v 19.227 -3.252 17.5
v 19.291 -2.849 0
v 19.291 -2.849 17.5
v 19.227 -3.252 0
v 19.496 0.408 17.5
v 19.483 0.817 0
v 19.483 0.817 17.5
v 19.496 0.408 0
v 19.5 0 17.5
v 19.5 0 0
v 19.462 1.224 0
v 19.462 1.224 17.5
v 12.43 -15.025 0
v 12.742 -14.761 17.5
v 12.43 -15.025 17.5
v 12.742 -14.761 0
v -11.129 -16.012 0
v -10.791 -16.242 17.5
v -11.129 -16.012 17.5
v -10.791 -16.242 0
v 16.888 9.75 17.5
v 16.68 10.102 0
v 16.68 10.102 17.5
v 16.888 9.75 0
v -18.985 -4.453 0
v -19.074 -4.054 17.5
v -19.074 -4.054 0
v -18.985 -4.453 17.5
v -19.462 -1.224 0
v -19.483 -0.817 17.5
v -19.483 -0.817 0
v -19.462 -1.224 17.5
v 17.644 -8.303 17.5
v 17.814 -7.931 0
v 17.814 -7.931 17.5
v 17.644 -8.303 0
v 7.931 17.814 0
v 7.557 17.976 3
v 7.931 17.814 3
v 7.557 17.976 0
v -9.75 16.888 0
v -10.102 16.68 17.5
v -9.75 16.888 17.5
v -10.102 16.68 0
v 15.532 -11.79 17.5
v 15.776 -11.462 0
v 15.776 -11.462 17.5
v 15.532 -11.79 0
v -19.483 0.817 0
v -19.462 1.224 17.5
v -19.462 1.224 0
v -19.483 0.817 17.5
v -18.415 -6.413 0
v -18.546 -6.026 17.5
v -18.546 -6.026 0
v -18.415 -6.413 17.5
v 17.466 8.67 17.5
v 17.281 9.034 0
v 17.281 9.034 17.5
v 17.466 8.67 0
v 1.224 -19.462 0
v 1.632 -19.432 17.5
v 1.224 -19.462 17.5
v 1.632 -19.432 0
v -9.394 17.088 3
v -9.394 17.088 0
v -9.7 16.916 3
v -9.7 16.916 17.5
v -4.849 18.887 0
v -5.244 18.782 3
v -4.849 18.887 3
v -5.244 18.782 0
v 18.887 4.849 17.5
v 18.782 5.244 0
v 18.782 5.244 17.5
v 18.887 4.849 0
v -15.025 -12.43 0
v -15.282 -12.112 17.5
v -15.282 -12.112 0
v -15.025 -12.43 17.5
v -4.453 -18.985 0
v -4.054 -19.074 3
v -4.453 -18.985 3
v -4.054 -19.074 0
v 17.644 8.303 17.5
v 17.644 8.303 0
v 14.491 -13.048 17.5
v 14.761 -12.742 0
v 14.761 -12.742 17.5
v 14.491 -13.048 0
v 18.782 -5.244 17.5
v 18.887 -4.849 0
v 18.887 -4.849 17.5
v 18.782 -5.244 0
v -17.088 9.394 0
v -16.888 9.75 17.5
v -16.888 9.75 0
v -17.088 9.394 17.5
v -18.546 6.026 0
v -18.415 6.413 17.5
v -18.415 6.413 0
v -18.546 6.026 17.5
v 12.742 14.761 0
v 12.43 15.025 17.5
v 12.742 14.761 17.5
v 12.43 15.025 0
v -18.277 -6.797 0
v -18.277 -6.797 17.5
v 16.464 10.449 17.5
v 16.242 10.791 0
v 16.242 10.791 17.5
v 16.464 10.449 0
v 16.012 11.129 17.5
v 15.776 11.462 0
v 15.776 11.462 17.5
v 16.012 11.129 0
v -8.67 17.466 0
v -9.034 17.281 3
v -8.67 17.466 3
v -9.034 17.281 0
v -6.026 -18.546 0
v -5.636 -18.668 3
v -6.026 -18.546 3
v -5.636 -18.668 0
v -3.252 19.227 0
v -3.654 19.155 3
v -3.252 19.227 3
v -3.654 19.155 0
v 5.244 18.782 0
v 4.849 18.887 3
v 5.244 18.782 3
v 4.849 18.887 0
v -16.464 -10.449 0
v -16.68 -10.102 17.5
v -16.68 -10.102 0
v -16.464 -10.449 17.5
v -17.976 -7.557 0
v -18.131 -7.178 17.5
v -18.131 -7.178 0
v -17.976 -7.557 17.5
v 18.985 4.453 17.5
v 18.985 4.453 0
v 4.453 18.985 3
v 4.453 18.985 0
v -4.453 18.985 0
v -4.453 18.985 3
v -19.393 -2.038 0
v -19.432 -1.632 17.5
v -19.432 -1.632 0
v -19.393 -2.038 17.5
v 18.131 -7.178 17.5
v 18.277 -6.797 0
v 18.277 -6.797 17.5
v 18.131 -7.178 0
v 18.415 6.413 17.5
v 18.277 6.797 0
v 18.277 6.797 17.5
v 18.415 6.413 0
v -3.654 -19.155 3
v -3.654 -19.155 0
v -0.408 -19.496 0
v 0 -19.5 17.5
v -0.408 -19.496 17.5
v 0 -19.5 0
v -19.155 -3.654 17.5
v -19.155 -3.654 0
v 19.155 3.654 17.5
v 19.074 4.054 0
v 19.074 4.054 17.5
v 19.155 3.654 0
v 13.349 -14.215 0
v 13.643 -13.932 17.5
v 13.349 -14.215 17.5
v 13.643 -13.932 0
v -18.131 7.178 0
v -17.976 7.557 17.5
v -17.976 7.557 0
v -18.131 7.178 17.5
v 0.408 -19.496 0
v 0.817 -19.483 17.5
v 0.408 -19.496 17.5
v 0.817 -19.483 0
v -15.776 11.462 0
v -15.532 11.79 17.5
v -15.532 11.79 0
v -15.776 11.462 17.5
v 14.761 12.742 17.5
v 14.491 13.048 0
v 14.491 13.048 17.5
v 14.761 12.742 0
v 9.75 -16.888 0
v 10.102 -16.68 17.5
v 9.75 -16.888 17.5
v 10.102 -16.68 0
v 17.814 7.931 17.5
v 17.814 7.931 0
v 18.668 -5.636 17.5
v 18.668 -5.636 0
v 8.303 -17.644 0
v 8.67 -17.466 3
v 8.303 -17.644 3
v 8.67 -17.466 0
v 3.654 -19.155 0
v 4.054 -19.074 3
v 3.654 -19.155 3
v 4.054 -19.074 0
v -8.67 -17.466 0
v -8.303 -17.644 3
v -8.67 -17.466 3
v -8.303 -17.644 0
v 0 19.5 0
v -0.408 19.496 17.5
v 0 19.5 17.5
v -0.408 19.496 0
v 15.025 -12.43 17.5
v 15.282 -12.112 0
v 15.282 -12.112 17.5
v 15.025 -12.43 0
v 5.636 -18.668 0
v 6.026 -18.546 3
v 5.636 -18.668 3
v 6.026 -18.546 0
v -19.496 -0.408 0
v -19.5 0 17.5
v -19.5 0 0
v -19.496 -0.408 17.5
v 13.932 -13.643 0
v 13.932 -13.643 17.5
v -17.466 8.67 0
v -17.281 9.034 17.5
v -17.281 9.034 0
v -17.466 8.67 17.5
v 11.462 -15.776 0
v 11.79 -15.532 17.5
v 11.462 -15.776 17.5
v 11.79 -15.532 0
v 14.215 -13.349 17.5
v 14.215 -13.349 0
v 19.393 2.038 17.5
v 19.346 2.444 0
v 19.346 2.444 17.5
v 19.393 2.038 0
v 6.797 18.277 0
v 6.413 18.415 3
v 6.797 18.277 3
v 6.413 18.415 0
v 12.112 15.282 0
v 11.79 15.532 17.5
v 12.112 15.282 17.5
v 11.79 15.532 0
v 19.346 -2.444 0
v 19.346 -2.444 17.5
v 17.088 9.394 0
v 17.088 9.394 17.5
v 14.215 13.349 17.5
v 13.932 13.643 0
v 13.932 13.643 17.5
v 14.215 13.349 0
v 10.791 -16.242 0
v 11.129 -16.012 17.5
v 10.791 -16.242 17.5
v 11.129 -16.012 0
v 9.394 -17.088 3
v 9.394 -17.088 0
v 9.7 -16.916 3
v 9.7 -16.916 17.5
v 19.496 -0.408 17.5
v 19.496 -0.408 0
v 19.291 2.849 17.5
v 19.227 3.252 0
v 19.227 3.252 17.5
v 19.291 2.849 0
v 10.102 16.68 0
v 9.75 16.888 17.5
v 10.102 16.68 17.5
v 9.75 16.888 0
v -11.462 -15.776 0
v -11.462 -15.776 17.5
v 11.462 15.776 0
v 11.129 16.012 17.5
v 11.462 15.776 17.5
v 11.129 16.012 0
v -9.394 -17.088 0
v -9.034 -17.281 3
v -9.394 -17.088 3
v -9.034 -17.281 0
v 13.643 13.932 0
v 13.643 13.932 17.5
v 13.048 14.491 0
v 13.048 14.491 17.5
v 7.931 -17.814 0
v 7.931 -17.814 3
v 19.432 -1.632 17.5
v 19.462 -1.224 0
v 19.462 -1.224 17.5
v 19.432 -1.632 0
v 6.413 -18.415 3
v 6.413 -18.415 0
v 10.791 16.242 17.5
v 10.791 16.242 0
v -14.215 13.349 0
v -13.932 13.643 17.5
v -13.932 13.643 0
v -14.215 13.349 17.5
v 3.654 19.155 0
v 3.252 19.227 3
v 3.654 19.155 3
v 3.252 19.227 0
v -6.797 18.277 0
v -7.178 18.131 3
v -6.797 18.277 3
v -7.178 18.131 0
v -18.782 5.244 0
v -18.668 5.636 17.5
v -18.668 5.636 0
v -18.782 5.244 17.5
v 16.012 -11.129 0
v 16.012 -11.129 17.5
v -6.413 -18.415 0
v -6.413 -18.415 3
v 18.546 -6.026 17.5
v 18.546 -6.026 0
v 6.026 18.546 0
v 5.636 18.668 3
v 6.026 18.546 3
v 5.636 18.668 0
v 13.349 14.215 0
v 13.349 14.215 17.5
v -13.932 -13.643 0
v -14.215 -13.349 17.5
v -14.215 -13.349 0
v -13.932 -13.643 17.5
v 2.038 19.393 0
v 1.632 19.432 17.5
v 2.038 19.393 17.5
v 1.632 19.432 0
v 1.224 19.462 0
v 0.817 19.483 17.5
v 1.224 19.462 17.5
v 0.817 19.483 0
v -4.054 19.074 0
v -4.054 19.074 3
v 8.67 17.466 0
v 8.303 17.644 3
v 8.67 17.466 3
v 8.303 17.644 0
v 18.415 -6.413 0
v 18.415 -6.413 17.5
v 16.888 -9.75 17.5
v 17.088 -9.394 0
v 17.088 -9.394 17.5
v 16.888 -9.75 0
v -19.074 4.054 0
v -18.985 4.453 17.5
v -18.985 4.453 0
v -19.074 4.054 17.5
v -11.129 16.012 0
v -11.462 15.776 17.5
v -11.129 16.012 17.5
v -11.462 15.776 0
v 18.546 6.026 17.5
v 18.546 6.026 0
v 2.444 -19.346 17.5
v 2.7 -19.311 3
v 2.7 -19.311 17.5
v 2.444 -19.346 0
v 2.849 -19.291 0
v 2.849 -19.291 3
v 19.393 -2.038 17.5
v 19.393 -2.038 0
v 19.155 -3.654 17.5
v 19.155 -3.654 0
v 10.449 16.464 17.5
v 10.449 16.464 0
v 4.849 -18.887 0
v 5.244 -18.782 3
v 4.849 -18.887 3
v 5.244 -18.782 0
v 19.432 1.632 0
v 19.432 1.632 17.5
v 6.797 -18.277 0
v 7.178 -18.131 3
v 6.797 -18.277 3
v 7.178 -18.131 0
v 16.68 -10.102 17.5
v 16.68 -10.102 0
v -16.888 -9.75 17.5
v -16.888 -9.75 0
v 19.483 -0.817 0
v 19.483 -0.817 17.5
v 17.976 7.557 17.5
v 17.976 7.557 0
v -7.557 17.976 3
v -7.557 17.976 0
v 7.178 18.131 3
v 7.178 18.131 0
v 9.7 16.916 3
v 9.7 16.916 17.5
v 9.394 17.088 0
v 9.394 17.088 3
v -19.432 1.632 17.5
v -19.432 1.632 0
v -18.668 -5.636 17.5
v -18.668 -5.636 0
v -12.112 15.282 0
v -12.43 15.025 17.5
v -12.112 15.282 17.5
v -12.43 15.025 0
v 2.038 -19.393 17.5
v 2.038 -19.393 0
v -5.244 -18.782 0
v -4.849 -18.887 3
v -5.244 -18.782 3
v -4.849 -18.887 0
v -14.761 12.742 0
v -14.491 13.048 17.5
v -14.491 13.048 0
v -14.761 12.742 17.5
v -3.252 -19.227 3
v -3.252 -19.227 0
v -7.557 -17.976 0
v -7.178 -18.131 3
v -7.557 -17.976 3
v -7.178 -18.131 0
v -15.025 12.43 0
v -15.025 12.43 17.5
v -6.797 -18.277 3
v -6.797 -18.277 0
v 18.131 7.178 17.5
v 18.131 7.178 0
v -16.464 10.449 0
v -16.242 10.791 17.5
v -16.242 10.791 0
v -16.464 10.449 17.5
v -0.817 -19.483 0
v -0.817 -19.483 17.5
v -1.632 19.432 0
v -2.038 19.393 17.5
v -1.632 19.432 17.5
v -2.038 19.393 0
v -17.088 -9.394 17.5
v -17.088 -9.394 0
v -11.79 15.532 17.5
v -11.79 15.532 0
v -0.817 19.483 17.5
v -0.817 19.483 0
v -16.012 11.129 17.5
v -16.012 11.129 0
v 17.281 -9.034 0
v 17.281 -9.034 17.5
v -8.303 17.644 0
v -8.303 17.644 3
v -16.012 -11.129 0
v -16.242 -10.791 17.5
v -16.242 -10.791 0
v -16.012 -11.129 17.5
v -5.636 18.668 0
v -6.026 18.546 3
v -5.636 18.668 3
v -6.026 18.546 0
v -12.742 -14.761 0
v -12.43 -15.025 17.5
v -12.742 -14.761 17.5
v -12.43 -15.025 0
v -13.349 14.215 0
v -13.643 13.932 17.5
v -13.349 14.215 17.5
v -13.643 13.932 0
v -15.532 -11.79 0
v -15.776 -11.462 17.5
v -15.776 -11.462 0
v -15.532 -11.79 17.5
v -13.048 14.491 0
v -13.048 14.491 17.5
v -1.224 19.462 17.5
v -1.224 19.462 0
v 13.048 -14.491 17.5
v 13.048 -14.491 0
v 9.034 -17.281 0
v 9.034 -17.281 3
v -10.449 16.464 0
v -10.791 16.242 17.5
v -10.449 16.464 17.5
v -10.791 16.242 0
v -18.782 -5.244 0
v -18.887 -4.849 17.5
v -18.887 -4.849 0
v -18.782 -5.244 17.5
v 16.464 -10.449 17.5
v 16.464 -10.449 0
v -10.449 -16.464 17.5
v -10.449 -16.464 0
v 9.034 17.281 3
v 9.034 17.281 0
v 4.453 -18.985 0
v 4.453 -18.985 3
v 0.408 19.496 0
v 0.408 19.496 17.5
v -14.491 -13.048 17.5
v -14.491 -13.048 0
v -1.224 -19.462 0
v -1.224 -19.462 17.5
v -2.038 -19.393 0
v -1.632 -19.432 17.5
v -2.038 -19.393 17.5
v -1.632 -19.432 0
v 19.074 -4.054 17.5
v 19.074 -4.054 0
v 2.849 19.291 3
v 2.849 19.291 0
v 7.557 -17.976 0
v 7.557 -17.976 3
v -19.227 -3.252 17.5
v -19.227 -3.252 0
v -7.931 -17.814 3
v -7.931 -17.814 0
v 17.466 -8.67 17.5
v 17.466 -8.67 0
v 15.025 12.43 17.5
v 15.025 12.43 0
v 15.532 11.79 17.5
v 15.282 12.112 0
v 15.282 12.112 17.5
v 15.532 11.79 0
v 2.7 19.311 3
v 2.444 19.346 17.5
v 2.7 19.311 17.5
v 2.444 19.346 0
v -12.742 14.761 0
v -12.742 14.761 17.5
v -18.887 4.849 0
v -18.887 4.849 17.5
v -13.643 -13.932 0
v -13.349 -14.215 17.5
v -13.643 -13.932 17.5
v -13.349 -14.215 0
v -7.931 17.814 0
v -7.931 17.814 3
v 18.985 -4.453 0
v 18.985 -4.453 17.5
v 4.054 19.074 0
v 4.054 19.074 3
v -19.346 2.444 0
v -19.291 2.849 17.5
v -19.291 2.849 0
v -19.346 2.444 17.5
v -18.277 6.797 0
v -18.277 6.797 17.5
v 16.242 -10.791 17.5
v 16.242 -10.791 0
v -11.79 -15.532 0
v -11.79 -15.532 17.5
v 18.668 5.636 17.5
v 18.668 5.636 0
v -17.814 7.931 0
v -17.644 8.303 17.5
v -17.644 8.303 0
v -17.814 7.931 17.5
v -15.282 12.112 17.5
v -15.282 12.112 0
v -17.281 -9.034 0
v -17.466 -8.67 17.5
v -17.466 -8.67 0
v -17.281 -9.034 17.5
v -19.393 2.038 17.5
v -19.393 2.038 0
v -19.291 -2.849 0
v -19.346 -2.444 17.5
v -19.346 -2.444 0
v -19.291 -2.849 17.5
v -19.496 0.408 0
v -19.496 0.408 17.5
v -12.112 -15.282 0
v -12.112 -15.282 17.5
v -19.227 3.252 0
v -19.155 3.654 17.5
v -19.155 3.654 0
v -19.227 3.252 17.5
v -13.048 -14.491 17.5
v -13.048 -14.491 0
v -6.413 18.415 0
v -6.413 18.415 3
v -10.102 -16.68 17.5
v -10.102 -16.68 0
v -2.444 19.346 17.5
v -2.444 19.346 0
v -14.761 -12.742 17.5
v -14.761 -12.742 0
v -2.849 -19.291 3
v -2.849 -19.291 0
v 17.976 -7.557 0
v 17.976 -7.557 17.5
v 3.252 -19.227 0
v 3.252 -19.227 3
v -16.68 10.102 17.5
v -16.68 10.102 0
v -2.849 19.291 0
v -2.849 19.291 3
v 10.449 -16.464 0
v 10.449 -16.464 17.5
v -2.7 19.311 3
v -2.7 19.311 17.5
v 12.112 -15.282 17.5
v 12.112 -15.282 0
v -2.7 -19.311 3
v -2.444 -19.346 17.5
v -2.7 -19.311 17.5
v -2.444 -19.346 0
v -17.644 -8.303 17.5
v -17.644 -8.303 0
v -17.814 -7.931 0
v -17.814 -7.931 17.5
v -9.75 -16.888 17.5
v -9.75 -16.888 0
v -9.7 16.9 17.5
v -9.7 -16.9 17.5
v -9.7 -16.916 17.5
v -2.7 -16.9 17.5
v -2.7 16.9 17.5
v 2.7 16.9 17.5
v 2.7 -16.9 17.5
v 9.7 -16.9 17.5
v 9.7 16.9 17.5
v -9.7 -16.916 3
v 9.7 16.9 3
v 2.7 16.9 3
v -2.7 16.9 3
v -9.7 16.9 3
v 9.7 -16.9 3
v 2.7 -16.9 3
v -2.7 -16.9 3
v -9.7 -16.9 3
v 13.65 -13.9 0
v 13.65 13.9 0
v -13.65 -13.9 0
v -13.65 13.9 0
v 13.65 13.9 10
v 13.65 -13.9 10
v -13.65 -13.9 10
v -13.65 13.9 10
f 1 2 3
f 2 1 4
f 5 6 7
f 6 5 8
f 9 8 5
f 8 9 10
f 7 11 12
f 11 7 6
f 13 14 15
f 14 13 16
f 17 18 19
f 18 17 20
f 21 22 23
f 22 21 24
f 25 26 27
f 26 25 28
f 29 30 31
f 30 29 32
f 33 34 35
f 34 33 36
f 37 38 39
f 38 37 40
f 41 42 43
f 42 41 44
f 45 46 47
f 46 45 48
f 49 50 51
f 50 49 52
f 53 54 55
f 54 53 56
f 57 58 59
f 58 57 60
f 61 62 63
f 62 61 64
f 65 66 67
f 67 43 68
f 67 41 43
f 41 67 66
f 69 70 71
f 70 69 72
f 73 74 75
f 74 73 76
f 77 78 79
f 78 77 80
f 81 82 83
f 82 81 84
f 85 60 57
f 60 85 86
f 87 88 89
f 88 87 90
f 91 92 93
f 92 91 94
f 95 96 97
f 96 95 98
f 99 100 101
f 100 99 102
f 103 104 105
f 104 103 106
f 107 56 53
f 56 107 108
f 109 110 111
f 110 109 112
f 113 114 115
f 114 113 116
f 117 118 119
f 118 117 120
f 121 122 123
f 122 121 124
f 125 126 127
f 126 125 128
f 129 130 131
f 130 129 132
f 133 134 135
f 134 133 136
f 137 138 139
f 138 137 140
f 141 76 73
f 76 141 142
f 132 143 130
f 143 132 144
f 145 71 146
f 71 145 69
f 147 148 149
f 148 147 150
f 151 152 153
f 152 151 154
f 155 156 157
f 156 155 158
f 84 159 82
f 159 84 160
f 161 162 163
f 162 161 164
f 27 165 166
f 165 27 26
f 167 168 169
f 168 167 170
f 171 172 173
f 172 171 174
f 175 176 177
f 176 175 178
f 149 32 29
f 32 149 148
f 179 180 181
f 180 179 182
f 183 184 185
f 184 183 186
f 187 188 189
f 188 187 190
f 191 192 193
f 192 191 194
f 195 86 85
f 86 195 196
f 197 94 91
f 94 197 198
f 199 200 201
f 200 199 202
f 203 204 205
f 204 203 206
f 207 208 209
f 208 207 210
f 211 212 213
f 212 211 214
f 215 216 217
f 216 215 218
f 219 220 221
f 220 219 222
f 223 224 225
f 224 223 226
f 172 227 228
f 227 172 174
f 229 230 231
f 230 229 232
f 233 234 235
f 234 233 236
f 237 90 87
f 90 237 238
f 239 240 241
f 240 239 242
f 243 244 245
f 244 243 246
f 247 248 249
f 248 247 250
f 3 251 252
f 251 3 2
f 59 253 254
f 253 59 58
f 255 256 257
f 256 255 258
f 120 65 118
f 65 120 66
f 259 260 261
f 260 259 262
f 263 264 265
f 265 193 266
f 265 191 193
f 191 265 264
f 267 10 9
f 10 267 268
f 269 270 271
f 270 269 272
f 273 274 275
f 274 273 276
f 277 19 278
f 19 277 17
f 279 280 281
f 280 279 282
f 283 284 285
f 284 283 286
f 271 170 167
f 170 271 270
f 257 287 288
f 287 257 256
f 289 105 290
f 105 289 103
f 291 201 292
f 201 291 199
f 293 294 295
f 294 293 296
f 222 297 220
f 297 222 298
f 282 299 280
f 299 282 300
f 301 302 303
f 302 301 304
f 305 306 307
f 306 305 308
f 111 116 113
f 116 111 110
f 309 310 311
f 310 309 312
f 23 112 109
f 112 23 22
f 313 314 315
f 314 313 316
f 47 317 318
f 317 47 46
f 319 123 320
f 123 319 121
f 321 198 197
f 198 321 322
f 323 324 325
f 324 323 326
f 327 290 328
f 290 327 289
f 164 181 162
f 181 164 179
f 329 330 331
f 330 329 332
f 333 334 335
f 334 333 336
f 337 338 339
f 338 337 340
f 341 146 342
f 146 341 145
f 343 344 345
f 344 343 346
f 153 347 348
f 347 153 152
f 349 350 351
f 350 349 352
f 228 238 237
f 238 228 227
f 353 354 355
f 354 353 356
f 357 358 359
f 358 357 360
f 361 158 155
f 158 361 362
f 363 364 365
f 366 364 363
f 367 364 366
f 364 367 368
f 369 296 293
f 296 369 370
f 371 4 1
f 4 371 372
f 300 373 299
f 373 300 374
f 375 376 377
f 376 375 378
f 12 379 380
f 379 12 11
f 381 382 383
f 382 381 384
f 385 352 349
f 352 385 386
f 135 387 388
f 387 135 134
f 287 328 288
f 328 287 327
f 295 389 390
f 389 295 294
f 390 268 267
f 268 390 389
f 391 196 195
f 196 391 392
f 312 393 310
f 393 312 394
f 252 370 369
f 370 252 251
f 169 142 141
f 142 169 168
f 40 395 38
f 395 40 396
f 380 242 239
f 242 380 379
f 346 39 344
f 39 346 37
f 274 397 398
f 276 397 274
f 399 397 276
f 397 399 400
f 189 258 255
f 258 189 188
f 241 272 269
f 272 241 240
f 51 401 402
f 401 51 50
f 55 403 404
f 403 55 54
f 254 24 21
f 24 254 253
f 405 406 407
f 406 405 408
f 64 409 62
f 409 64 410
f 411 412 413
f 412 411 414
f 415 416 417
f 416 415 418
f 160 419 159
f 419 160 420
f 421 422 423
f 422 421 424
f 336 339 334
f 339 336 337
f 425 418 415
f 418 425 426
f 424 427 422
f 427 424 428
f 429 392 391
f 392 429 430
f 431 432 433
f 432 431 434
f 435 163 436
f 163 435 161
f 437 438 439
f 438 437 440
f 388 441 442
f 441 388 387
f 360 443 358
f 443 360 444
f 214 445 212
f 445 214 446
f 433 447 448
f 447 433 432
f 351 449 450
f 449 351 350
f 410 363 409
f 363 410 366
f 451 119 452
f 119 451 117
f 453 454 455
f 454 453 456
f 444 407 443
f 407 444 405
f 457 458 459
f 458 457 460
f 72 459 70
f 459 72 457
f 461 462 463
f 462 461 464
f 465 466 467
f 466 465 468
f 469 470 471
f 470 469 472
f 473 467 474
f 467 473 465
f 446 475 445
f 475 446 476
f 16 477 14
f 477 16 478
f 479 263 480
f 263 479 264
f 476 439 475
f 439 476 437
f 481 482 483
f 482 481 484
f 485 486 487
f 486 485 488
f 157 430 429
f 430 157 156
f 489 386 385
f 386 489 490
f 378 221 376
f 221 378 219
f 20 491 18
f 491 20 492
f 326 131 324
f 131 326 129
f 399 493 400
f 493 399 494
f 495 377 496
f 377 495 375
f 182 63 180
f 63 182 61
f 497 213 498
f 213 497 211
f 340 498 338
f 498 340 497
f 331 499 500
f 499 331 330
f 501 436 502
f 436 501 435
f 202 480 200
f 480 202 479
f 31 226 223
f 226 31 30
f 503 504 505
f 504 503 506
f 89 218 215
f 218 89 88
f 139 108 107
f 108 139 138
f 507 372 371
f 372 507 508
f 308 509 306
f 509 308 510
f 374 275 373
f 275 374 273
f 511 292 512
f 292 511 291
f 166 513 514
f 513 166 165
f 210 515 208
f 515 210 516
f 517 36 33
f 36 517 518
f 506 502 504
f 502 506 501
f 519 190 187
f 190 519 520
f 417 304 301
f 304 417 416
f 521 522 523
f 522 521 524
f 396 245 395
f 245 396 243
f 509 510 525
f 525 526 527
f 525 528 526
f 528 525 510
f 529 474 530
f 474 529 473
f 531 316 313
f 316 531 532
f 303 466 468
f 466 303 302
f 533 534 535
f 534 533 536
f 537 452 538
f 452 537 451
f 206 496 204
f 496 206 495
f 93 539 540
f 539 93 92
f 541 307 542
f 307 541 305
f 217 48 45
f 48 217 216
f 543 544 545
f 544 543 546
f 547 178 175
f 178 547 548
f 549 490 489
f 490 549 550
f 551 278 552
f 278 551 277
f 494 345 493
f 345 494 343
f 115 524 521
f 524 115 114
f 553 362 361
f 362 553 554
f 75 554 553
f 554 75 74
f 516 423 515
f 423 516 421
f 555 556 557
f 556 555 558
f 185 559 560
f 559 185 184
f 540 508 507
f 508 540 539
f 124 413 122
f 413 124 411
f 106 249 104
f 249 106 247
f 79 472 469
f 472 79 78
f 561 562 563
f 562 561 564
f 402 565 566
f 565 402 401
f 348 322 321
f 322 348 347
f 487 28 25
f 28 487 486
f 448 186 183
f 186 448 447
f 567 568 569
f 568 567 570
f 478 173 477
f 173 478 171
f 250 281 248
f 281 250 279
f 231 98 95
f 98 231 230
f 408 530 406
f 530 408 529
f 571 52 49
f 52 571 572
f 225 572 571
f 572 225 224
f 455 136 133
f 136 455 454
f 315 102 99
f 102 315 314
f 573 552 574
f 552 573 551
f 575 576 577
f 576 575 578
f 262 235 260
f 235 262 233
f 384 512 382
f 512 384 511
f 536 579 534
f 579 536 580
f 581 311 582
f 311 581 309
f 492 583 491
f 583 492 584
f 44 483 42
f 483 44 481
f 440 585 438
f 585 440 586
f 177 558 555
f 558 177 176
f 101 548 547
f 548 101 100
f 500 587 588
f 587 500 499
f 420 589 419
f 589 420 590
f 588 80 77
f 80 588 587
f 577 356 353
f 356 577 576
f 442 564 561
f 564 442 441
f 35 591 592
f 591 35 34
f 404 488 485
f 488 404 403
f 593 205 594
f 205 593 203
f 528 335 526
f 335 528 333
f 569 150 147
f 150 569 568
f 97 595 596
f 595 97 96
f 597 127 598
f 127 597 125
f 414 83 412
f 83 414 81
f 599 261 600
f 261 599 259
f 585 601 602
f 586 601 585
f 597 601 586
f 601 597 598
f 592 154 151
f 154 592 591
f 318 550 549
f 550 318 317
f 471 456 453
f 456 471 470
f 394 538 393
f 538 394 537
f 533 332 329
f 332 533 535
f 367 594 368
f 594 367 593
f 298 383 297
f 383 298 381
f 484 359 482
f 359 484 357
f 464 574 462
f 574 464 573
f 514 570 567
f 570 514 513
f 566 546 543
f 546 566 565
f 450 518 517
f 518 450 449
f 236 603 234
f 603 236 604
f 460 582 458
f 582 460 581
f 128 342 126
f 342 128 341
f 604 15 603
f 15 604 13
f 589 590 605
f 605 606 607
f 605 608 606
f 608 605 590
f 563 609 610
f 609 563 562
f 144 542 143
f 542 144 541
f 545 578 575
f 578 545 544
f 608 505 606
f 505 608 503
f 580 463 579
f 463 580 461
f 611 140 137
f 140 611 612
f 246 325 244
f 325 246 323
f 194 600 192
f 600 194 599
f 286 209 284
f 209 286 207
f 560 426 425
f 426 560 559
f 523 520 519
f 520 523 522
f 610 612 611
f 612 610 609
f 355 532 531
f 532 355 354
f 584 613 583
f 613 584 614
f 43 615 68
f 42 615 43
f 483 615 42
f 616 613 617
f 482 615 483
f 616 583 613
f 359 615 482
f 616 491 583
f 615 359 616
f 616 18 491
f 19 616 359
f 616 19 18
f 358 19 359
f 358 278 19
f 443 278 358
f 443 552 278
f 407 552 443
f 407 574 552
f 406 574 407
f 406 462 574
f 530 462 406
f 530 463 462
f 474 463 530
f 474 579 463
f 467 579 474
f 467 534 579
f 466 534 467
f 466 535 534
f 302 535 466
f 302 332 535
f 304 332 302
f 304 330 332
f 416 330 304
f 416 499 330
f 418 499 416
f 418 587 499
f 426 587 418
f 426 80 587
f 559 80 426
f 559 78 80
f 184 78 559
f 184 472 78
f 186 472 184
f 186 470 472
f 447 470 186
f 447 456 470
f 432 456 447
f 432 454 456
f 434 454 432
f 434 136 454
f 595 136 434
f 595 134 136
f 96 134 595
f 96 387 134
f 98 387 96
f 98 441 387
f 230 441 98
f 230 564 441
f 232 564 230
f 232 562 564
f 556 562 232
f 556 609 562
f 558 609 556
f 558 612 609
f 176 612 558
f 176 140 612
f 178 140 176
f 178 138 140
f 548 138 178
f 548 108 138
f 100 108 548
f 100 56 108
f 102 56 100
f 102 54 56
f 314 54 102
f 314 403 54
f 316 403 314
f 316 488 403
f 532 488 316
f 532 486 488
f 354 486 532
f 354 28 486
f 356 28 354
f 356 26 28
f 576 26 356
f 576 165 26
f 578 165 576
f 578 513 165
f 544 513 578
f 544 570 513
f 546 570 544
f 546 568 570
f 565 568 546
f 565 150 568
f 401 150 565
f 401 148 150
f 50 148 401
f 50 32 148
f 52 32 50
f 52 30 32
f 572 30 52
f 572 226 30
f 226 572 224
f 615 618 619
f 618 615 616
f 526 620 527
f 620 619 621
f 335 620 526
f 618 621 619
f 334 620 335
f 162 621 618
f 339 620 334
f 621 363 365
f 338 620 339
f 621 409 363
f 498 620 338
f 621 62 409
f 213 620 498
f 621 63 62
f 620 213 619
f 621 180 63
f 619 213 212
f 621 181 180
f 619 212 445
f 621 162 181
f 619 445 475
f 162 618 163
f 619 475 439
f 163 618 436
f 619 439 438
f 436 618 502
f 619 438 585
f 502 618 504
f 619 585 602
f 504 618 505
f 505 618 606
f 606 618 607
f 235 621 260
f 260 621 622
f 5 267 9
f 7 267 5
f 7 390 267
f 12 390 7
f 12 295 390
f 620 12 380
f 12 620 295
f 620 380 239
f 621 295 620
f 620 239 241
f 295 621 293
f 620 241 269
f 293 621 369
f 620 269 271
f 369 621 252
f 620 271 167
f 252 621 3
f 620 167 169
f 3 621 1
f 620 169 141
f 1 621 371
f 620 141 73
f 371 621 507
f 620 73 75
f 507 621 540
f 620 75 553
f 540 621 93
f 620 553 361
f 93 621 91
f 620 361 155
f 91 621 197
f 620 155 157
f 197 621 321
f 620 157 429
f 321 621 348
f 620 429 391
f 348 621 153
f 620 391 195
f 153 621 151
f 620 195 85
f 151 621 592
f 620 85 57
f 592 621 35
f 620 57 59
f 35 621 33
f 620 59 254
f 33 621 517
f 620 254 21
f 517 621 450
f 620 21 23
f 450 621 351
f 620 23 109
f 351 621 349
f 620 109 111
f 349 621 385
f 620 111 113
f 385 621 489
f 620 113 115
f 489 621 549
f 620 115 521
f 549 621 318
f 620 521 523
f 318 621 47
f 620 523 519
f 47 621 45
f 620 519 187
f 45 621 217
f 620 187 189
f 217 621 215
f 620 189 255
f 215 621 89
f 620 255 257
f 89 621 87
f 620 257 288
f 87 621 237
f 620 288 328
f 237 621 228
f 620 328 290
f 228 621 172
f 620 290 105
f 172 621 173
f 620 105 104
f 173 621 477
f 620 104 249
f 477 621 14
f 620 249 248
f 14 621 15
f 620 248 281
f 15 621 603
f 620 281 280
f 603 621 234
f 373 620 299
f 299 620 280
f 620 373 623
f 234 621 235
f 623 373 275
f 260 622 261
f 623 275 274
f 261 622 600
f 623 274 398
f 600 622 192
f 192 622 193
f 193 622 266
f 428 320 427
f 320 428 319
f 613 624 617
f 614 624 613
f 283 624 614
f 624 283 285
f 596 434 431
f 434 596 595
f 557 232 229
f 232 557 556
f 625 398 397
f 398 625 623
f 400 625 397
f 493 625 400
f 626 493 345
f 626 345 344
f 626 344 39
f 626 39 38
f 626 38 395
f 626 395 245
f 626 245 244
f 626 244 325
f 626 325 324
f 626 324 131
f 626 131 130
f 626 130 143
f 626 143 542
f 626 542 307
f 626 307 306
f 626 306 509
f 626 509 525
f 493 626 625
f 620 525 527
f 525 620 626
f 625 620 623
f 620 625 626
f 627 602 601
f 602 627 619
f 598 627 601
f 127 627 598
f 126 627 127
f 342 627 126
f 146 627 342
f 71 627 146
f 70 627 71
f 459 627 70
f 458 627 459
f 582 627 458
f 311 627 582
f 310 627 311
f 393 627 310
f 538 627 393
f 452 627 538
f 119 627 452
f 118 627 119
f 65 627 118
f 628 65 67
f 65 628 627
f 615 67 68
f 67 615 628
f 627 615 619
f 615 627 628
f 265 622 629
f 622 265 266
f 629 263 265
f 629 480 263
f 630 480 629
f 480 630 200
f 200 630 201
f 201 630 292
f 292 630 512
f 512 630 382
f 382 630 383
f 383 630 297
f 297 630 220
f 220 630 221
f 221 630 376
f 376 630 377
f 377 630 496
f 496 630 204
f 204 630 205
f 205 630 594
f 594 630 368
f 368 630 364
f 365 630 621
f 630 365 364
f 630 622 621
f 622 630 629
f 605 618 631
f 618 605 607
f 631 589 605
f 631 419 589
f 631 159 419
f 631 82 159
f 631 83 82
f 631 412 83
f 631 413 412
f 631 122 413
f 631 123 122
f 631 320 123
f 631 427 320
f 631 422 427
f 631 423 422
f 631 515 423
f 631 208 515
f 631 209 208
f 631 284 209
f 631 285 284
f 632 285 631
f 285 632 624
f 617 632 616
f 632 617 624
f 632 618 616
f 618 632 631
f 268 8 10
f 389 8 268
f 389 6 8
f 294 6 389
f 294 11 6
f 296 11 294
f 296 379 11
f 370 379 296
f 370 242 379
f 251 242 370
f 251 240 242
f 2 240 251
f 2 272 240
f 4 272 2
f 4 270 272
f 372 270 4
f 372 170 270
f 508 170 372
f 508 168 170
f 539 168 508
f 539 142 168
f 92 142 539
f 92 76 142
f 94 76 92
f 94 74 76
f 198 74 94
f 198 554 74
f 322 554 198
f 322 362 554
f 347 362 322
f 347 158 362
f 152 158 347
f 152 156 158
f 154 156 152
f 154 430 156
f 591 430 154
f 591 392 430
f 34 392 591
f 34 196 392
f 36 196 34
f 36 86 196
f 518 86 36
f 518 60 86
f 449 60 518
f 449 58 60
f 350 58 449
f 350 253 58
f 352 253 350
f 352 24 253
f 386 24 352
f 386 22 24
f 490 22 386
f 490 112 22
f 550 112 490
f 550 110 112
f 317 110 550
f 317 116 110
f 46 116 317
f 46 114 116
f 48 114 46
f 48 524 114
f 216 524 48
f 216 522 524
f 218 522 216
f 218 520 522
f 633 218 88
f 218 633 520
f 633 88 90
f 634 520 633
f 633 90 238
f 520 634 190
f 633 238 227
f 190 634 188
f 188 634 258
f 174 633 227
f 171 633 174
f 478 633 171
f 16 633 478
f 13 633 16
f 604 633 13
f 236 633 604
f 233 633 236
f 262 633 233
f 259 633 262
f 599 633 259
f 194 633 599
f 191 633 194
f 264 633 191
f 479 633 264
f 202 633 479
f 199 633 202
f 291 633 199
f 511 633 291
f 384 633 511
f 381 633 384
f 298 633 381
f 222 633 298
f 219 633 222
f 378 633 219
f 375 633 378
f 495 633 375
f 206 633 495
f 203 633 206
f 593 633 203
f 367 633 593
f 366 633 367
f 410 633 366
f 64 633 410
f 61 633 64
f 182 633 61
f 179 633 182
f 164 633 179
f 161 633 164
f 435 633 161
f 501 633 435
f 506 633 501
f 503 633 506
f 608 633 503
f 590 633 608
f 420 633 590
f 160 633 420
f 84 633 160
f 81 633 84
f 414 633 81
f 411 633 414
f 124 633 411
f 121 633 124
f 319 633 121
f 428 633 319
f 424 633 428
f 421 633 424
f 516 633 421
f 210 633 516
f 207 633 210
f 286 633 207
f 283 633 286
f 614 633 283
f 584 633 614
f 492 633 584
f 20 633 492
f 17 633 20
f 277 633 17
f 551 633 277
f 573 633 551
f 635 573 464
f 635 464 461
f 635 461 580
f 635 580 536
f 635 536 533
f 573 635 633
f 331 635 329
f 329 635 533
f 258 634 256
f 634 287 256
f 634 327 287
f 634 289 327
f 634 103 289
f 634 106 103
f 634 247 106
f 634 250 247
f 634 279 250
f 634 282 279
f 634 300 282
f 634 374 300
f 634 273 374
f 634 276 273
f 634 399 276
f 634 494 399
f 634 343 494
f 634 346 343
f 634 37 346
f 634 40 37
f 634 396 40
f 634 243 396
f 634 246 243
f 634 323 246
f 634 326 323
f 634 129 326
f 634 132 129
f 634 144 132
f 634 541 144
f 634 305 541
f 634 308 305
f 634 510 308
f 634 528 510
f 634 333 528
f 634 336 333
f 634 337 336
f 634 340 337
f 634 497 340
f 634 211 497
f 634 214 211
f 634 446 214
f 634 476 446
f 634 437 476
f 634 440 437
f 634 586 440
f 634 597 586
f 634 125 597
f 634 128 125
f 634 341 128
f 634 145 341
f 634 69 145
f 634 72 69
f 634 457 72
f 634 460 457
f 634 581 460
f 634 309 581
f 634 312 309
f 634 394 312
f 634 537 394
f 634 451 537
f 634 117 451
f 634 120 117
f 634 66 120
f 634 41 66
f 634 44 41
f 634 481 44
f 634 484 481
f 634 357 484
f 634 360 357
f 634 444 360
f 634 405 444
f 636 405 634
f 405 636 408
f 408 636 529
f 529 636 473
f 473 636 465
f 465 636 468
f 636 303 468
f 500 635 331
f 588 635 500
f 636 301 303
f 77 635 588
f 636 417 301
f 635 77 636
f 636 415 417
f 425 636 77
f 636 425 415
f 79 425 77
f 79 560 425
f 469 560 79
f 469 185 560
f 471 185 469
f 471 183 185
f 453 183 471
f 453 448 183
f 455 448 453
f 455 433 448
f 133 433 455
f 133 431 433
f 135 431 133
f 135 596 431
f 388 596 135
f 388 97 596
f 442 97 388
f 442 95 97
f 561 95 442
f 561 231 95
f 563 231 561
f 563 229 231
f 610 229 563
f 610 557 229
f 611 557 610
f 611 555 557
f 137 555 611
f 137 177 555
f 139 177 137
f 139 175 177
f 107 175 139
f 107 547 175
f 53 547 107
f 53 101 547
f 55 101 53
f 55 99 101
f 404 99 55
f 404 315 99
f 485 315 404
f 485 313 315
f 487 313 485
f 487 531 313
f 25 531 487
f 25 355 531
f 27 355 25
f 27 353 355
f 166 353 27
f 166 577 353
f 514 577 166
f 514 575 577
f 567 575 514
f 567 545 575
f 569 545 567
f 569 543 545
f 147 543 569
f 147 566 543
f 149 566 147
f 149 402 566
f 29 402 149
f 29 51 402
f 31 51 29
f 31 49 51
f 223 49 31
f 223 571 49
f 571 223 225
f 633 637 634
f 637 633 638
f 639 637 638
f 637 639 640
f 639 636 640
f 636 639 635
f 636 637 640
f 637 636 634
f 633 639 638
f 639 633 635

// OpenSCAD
/*
 Parametric Schuko CEE 7/3 socket
 
 Copyright 2017 Anders Hammarquist <iko@iko.pp.se>
 Licensed under Creative Commons - Attribution - Share Alike
 
 Made using a negative "profile punch" that can be extracted
 and used to "punch" a schuko socket into any sufficiently large solid.
*/

// Diameter of cover
coverdiameter = 50; // [50:100]

// Thickness of cover
coverthickness = 4.8; // [2:0.2:15]

// Center screw offset (extreme values disables screw hole)
screwoffset = 0; // [-11:0.5:11]
// This is the socket punch. Includes cut-out for
// earthing contacts and holes for pins and center screw.
// Maximum screw offset from center is 10mm (use a larger
// value to remove the hole for the screw).
module schuko(screwoffset=0, screwdia=3.5, screwhead=6.5, screwsink=3)
{
    module earthing()
    {
        intersection() {
            union() {
                translate([-22,-2,3])
                    cube([6,4,20]);
                translate([-19,-2,17.5])
                    rotate([0,-30,0])
                        cube([15, 4, 4]);    
            }
            translate([-22,-3,3])
                cube([22,6,20]);
        }
    }
    
    difference() {
        union() {
            translate([0,0,-1])
                cylinder(r=39/2, $fn=300, h=18.5);
	                
            // Earthing cutouts
            color([1,1,1]) {
                earthing();
                
                rotate([0,0,180]) 
                    earthing();
                
            }             
            
            // Power pins
            translate([0,10,0])
                cylinder(r=7/2, $fn=300, h=30);
            translate([0,-10,0])
                cylinder(r=7/2, $fn=300, h=30);
            
            if (abs(screwoffset) <= 10) {
                // Center screw
                translate([screwoffset,0,0])
                    cylinder(r=screwdia/2, $fn=300, h=30);
                translate([screwoffset,0,0])
                    cylinder(r=screwhead/2, $fn=300, h=17.5+screwsink);
            }
        }
        
        // Side key profile
        translate([5.4/2,16.9,3]) 
            cube([7,3,20]);
        translate([-5.4/2-7,16.9,3])
            cube([7,3,20]);
        translate([5.4/2,-20.4,3])
            cube([7,3.5,20]);
        translate([-5.4/2-7,-20.4,3])
            cube([7,3.5,20]);
    }
}
difference () {
    
difference () {
    cylinder(r=39/2, $fn=300, h=17.5);
translate ([-27.3/2,-27.8/2,0]) cube([27.3,27.8,10]);
rotate([0,0,0]){
    difference(){
        union() {
            translate([0,0,0])
                cylinder(r=44/2, $fn=300, h=21.5);
            // Lip
            rotate_extrude($fn=100) {
                polygon(points=[[0,0], [coverdiameter/2,0], 
                [coverdiameter/2+0.2*coverthickness,coverthickness],
                [0,coverthickness]]);
            }
            
            // Pin guard: 9.5 x 28.5 x 3mm (rounded ends)
            translate([-4.75,-14.25,21.5])
                cube([9.5, 28.5, 3]);

            // center screw standoff: 6 x 2.5 (above pin guard) x 2 - 3 
            // ( 8mm inside, 14 - 12.2 mm outside)    
            translate([-7.25, -3, 21.5])
                cube([2.5, 6, 5.5]);
            translate([4.75, -3, 21.5])
                cube([2.5, 6, 5.5]);

        }
        schuko(screwoffset=screwoffset);
    }
}
}

}
